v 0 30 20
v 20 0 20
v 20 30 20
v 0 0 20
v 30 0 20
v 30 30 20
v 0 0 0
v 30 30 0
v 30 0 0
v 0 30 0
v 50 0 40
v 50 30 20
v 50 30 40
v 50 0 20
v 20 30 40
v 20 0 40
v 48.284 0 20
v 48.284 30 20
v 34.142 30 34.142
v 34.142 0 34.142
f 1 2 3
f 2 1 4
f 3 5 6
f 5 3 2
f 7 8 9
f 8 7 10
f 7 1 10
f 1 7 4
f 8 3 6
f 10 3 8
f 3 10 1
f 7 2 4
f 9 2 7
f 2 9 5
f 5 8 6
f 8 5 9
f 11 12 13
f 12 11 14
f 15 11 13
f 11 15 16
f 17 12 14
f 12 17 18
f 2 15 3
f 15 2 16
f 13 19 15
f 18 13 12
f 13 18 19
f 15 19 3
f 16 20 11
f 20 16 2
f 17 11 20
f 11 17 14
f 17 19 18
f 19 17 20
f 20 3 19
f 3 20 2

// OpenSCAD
// Base block dimensions
base_length = 50;  // Length of the base block
base_width = 30;   // Width of the base block
base_height = 20;  // Height of the base block

// Slanted block dimensions
slanted_length = 30;  // Length of the slanted block
slanted_width = 30;   // Width of the slanted block
slanted_height = 20;  // Height of the slanted block
slant_angle = 45;     // Angle of the slanted face

// Base block
module base_block() {
    // Solid rectangular block with a slanted edge on one side
    difference() {
        cube([base_length, base_width, base_height]);
        translate([base_length - base_height * tan(slant_angle), 0, 0]) {
            rotate([0, 0, 0]) {
                cube([base_height * tan(slant_angle), base_width, base_height]);
            }
        }
    }
}

// Slanted block
module slanted_block() {
    // Fully exposed slanted block
    difference() {
        cube([slanted_length, slanted_width, slanted_height]);
        translate([0, 0, 0]) {
            rotate([0, slant_angle, 0]) {
                translate([0, -slanted_width, 0]) {
                    cube([slanted_length, slanted_width * 2, slanted_height]);
                }
            }
        }
    }
}

// Assemble the model
module flexible_coupling() {
    // Base block
    base_block();

    // Slanted block positioned on top of the base block
    translate([base_length - slanted_length, 0, base_height]) {
        slanted_block();
    }
}

// Render the model
flexible_coupling();
